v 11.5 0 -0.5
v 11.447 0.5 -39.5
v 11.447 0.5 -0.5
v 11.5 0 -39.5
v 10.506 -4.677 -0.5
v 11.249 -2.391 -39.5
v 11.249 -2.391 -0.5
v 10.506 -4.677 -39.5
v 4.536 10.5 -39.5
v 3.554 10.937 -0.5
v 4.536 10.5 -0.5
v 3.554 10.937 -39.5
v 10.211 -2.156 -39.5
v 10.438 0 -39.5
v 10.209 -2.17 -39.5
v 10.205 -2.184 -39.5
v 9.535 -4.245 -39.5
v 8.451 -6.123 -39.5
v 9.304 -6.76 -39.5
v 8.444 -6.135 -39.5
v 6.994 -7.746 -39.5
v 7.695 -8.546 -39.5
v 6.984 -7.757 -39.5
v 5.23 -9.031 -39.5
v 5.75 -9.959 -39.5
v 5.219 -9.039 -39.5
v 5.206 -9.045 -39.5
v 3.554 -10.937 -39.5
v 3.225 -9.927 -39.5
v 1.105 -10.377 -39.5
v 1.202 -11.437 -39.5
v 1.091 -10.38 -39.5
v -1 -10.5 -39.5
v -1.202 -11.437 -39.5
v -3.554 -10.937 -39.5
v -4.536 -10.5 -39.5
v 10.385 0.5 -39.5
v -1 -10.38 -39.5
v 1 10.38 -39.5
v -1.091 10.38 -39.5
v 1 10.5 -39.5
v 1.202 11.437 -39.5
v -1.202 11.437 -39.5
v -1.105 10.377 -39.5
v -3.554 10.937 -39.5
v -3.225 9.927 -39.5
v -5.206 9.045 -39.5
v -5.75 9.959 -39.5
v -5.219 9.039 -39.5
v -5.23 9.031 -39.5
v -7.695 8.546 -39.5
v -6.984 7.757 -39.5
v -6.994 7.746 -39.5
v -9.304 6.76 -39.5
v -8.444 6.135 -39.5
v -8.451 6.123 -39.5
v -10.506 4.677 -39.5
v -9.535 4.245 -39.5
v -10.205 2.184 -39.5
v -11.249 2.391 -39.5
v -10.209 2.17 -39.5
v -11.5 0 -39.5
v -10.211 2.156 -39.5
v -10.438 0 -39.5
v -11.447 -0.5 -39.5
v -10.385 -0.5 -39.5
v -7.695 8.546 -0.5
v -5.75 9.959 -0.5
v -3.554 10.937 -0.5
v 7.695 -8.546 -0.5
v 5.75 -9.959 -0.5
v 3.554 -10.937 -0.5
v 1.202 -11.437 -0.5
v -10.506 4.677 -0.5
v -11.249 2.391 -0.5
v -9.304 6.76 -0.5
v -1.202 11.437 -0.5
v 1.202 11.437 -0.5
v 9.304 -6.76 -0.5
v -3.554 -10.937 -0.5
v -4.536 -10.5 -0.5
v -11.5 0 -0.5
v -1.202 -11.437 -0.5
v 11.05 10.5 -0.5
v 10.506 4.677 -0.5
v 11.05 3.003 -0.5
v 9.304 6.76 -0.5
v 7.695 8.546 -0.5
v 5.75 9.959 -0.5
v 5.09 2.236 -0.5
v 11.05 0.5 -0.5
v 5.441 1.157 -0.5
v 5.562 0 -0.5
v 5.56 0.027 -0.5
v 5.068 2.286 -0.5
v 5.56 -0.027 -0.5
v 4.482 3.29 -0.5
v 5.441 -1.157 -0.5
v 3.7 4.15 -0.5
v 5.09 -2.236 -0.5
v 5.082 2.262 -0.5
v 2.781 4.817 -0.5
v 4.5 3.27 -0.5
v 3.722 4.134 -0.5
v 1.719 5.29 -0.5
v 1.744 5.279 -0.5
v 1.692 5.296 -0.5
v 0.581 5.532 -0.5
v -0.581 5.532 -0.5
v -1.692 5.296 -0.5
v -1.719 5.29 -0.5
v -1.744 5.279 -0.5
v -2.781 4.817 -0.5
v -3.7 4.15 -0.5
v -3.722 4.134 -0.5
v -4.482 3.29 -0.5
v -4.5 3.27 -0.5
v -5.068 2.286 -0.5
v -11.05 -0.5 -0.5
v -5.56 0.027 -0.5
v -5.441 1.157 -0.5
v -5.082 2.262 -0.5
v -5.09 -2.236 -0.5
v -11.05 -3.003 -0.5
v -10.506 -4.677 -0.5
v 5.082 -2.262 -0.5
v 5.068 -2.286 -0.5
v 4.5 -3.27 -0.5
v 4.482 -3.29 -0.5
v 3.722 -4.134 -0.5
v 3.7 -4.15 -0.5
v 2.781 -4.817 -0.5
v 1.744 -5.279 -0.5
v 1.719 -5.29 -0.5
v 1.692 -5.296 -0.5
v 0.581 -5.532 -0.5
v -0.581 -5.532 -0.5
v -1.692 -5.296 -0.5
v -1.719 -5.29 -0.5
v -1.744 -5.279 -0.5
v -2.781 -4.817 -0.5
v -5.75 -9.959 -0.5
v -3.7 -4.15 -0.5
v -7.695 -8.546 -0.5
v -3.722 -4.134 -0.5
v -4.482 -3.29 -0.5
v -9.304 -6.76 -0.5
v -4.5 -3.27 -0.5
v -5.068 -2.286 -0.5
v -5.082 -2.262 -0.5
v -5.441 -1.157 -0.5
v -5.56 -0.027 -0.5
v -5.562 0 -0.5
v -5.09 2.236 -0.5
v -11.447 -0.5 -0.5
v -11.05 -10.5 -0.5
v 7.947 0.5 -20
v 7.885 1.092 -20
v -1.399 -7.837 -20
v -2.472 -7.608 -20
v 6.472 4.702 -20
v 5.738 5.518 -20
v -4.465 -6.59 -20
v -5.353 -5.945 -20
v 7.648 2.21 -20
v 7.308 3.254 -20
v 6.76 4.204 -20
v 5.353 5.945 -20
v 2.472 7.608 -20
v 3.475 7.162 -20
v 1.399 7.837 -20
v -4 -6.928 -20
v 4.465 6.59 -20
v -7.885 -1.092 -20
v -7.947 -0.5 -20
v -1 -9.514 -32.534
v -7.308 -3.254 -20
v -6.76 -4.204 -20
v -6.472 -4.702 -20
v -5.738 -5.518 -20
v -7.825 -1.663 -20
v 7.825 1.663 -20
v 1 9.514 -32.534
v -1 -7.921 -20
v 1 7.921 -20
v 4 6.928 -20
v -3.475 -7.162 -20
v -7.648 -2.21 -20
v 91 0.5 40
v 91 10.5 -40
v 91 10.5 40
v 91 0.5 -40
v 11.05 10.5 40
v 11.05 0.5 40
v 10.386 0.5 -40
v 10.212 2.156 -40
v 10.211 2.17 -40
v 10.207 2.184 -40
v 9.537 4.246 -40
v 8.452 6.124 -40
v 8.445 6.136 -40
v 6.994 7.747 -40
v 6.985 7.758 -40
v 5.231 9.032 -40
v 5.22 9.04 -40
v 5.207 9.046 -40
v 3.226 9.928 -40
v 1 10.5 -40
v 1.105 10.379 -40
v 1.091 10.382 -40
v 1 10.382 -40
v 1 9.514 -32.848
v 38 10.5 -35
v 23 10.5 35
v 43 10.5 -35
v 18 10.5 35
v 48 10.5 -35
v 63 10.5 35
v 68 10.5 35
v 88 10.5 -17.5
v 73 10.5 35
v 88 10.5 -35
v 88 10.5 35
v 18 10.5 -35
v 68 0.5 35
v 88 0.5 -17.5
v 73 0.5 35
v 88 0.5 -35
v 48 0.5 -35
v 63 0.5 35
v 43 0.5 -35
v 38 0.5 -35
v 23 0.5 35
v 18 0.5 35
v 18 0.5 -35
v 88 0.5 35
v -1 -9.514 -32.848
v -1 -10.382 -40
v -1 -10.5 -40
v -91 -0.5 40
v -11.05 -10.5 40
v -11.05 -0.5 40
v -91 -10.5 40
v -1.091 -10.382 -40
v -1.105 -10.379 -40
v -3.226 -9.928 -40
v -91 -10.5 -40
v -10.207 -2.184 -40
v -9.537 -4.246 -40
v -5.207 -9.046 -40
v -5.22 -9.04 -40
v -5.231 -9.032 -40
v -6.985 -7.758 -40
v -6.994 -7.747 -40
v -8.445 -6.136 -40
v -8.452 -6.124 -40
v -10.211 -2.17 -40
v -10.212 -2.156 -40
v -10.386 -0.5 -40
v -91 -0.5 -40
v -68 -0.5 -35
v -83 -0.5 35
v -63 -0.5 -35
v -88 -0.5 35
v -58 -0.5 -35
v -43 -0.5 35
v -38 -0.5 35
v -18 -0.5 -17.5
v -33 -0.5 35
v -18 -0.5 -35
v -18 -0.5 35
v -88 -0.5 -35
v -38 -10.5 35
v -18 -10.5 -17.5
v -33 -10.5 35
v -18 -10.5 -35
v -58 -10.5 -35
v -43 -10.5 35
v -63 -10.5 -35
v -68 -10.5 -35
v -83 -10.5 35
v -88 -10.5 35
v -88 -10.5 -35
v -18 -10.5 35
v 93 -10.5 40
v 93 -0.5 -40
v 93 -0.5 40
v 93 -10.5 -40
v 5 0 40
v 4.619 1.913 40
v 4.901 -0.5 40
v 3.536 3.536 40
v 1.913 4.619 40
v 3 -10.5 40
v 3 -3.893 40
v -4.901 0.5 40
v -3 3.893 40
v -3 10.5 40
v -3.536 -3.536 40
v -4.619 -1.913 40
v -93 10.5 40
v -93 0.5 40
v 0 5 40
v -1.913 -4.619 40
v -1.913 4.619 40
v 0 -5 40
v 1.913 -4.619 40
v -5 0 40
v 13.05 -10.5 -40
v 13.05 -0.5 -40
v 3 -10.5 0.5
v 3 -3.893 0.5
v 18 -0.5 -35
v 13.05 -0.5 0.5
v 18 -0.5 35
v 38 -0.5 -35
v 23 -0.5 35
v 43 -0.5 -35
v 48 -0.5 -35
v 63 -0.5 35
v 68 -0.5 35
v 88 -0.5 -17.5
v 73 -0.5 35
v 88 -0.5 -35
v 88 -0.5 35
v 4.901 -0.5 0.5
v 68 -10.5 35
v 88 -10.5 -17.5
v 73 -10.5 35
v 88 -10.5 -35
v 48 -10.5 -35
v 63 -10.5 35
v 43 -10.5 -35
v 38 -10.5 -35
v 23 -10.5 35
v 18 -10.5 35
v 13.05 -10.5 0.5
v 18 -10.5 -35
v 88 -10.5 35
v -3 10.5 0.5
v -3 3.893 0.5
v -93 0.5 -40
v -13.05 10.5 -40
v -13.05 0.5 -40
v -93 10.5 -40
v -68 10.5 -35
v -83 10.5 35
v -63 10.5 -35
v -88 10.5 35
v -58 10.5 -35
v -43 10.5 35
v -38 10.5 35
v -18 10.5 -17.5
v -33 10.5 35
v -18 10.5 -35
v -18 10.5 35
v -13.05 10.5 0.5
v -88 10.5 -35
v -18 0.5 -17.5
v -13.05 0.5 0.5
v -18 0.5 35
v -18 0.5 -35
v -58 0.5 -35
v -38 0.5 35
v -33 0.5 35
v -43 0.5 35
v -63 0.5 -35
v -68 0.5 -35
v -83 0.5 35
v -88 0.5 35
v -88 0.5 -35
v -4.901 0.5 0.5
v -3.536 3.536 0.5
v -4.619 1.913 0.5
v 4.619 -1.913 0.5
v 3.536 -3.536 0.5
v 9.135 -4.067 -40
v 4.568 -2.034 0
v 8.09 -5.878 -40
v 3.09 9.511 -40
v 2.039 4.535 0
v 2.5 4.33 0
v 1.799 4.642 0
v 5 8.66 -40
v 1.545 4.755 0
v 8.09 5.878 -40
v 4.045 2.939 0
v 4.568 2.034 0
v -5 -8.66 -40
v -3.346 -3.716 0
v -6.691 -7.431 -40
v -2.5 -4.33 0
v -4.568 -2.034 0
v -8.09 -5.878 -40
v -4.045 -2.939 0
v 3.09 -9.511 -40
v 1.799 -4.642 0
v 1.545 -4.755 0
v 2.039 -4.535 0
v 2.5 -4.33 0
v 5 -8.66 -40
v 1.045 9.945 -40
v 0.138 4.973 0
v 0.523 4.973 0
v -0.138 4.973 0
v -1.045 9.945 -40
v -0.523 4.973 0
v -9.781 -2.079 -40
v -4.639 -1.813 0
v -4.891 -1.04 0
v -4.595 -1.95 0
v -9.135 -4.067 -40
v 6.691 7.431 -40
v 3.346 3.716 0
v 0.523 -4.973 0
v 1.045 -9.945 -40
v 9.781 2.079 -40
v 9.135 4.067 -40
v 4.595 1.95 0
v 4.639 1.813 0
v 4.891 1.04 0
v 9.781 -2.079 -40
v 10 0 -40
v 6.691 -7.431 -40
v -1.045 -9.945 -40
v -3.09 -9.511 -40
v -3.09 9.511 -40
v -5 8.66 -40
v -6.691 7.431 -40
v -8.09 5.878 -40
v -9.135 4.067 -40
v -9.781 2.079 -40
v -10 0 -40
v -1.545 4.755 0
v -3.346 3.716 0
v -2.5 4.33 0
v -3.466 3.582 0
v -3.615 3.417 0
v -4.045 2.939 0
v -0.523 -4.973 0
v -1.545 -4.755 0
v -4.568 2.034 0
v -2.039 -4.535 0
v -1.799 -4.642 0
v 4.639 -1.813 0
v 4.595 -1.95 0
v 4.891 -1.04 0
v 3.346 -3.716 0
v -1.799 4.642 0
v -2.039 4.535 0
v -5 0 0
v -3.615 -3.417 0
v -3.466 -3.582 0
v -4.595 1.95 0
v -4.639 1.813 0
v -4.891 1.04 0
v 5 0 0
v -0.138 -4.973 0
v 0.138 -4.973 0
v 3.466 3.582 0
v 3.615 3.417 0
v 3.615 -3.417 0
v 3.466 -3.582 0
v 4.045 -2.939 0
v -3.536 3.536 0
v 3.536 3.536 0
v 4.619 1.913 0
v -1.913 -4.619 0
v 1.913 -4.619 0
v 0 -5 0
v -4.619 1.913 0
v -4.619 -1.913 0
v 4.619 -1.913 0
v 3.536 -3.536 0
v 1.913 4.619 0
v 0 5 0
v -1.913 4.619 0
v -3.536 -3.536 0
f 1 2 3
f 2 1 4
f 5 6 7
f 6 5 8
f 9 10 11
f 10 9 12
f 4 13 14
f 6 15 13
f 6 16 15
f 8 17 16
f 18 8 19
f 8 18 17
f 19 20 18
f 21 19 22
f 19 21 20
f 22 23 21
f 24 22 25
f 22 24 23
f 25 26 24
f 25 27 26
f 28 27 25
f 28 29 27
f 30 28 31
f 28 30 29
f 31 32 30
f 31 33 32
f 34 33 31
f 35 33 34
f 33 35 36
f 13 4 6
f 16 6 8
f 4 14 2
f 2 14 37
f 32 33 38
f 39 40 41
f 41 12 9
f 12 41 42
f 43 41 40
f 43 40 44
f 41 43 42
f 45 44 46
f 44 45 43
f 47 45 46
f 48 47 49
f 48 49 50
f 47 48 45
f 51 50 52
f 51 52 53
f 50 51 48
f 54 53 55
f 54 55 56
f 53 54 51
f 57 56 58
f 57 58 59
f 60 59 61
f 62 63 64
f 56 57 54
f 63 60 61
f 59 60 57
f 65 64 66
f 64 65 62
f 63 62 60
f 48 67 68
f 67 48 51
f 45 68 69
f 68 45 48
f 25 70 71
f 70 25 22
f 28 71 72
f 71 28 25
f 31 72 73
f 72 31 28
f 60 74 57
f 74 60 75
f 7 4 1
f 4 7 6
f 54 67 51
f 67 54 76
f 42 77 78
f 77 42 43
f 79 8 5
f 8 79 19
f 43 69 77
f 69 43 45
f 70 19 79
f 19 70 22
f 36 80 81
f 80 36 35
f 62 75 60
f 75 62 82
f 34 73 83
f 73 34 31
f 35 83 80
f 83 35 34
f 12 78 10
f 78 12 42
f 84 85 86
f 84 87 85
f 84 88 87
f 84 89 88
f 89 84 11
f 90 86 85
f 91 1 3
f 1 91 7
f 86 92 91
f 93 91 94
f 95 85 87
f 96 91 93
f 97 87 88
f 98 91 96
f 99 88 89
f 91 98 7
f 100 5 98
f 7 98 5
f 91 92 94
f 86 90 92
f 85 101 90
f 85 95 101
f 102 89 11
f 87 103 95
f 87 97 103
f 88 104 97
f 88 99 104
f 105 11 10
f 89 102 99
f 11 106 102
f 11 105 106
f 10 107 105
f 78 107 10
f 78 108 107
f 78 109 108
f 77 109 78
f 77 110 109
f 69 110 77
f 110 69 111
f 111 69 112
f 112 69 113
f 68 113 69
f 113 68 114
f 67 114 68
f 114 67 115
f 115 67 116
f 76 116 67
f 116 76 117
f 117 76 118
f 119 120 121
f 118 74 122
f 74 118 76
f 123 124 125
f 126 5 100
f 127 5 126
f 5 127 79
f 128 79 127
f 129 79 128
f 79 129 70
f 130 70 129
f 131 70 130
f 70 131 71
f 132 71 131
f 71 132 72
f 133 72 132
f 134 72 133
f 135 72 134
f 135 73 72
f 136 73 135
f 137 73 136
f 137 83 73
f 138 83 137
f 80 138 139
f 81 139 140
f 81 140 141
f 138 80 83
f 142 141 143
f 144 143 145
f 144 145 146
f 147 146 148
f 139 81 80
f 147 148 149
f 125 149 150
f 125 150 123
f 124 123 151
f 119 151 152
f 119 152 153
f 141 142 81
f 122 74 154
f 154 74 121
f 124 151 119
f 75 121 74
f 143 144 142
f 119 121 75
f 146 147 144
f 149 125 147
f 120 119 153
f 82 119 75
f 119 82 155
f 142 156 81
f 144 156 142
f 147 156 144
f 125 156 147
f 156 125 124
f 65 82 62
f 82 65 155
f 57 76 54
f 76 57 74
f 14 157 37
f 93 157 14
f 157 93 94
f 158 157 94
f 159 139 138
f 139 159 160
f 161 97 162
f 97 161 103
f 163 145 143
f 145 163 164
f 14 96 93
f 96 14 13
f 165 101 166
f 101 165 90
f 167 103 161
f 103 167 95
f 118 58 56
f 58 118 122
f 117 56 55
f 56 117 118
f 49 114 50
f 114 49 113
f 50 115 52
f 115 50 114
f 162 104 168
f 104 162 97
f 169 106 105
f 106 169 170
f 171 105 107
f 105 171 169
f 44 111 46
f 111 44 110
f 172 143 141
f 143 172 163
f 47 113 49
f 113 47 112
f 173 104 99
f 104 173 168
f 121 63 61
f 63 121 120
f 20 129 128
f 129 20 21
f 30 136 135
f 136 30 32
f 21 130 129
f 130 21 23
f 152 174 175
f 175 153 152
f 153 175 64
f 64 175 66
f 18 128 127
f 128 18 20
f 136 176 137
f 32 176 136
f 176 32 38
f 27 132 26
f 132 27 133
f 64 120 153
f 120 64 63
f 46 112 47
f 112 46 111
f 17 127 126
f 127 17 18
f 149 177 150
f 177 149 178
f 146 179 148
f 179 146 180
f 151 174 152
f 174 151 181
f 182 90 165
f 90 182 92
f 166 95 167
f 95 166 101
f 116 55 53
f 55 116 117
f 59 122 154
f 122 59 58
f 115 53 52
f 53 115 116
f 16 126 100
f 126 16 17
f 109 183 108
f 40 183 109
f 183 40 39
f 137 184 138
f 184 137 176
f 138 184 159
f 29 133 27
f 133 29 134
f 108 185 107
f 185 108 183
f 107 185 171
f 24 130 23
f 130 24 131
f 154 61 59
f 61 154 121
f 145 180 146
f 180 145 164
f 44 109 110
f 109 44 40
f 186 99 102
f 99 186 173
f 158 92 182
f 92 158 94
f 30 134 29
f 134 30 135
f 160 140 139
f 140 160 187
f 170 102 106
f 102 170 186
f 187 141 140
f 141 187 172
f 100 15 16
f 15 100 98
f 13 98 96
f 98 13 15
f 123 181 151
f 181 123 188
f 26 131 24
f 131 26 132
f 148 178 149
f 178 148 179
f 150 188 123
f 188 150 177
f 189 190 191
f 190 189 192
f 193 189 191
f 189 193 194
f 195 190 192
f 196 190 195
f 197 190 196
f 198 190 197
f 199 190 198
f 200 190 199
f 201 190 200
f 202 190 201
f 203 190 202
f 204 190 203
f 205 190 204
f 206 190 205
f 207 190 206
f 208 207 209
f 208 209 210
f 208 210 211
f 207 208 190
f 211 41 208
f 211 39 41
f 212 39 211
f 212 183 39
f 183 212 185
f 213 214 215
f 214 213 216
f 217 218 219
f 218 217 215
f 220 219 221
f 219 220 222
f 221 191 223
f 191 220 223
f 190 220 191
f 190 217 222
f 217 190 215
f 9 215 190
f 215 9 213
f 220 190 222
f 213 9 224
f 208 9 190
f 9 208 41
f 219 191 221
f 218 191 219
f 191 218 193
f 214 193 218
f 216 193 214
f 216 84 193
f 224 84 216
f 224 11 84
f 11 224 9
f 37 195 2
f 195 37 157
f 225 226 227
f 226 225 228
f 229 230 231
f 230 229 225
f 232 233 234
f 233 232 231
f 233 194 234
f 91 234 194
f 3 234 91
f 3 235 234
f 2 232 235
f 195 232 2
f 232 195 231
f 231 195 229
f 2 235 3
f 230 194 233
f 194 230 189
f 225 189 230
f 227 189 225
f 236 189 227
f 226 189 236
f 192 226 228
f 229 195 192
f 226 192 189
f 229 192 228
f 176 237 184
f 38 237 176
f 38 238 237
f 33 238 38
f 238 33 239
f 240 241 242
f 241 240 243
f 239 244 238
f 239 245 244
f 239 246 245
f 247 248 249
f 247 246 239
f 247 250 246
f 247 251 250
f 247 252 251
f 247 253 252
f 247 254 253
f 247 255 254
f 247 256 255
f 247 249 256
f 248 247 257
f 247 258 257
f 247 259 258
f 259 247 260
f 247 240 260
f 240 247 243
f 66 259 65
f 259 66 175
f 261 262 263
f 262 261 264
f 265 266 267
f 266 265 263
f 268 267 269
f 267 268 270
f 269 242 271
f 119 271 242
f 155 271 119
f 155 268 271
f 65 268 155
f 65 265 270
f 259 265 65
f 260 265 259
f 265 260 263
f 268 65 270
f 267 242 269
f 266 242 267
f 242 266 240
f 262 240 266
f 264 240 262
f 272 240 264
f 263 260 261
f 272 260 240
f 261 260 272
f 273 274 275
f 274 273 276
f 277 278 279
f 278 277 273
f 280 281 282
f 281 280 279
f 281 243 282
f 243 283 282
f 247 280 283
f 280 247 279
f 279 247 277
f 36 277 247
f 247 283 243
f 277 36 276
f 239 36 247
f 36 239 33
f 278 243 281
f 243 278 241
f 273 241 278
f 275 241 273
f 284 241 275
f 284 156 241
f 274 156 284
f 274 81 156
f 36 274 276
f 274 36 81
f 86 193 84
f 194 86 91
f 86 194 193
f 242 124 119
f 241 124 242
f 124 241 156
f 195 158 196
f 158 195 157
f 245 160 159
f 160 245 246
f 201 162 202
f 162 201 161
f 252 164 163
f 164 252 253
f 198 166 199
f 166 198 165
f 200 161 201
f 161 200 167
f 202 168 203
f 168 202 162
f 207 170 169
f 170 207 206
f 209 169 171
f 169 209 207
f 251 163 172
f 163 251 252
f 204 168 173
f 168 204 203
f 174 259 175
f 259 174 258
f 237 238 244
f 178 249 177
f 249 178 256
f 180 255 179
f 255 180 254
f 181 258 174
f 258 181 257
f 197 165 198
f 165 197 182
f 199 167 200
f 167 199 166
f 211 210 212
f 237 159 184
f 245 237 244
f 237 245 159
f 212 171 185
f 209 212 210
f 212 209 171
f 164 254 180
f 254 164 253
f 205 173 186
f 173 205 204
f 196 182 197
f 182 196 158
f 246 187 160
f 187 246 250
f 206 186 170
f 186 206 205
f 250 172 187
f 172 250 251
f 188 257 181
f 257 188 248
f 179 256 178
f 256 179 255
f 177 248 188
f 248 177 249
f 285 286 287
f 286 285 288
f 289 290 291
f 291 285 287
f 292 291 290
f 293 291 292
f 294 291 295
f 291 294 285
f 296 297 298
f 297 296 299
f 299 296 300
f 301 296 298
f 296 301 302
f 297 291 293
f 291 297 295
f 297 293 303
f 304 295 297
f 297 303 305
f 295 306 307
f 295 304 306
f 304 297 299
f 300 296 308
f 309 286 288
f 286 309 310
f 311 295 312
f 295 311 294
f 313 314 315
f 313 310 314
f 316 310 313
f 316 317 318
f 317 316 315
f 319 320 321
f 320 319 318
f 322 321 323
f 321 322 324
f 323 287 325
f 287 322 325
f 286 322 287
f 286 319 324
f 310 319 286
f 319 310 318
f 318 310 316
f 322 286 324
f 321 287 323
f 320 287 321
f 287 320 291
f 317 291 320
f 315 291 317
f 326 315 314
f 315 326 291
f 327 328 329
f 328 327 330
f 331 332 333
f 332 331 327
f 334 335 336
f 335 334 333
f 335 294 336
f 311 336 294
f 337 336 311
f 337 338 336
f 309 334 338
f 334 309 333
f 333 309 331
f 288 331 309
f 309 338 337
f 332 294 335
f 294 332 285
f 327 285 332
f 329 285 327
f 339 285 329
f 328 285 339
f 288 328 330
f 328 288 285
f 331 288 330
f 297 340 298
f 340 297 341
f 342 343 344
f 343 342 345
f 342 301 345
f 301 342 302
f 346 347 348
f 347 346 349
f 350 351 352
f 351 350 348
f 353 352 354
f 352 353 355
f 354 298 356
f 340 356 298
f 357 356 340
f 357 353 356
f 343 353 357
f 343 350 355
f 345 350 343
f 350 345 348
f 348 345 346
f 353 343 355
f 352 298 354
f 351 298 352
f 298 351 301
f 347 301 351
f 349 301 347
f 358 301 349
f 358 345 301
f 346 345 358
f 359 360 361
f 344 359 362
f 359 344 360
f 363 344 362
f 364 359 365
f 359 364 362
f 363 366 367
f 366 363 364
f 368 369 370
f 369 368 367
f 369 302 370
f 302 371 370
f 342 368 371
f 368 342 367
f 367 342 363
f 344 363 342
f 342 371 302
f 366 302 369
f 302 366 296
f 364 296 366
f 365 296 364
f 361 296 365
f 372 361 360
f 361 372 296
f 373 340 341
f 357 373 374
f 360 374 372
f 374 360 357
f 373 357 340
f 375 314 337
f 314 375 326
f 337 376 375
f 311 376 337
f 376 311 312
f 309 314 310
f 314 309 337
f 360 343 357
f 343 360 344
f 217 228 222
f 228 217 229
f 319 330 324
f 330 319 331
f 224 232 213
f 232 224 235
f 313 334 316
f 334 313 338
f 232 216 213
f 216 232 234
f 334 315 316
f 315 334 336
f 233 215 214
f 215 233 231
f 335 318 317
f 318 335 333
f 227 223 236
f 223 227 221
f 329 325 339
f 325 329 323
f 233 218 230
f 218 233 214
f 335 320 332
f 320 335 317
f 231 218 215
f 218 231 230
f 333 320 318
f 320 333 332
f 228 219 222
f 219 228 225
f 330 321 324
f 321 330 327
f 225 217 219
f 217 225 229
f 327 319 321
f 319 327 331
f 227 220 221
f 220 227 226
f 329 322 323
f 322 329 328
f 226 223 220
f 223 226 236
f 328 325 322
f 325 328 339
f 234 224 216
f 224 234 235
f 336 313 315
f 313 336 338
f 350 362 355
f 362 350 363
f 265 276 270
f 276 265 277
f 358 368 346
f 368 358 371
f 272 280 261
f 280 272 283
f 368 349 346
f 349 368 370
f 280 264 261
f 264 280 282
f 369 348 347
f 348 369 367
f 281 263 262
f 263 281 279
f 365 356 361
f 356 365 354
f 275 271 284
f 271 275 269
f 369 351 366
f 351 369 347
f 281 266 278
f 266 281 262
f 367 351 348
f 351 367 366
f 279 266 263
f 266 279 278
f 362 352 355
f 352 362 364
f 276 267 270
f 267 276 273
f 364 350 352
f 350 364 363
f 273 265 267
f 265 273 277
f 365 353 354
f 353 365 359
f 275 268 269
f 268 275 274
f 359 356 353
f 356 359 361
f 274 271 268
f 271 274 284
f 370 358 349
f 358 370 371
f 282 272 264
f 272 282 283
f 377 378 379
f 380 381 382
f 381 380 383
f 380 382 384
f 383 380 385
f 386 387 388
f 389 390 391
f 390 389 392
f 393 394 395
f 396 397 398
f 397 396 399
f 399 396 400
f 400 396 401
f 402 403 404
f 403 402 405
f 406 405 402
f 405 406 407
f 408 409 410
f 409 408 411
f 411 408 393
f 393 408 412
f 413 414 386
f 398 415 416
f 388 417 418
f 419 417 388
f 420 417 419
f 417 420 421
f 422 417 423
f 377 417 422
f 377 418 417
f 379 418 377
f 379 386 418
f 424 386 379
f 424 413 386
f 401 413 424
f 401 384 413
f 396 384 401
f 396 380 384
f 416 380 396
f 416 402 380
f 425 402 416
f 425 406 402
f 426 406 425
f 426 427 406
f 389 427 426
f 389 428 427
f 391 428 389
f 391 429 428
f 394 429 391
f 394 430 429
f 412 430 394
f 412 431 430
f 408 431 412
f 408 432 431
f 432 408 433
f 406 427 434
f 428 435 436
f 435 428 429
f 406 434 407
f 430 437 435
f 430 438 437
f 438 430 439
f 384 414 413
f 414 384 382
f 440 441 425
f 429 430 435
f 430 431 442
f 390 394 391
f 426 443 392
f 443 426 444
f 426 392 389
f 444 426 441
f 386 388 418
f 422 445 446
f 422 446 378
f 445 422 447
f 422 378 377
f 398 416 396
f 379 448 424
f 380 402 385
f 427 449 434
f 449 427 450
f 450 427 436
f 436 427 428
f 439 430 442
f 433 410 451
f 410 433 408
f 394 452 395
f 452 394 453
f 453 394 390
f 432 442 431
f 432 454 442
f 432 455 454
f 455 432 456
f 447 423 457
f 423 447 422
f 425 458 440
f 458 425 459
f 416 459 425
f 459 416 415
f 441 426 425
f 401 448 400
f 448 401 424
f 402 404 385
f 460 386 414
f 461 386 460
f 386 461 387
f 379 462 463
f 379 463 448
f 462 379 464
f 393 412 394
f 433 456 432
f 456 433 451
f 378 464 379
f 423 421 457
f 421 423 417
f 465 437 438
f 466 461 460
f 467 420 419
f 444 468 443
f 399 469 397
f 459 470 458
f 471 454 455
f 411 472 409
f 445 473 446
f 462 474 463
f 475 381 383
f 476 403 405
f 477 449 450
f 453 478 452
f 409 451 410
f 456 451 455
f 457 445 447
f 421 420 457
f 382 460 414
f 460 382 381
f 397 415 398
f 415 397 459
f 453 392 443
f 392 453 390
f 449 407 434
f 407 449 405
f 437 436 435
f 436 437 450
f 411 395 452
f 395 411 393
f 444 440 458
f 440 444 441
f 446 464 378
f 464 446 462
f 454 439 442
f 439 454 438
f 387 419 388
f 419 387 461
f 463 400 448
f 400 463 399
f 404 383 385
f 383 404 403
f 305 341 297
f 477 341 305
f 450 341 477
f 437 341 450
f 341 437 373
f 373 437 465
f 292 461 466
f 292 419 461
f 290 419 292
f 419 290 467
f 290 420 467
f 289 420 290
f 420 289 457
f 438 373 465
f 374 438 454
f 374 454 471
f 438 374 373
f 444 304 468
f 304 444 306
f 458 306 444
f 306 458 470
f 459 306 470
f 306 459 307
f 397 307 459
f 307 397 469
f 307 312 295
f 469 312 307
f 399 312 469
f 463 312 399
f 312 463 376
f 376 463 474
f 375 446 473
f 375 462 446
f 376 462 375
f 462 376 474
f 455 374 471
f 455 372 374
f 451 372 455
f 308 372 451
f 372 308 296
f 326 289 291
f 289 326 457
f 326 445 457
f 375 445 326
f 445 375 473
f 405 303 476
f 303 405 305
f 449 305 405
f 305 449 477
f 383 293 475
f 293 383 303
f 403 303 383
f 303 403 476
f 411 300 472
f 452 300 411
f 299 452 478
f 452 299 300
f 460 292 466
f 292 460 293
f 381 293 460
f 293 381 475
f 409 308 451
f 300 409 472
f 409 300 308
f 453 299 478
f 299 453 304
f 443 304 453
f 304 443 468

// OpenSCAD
translate([0,0,-20])
cylinder(h=40, d1=20,d2=10,center=true);
translate([0,0,20])
cylinder(h=40, d=10,center=true);

translate([0,0,-20]){
    difference(){
        cylinder(h=39, d=23,center=true);
        cylinder(h=40, d1=21,d2=11,center=true);
    }
}

module triangle(base_width, height, length) {
    x_left = base_width/2;
    x_right = -base_width/2;
    y_top = height/2;
    y_bottom = -height/2;
    rotate([90,0,0])
    translate([0,0,-length/2])
    linear_extrude(height = length)
        polygon(points=[[x_left,y_bottom],[x_right,y_bottom],[0,y_top]]);
}

module triangle_pattern(base_width, height, length, spacing, repetitions) {
    for (i = [0:repetitions-1]) {
        translate([(base_width + spacing) * i, 0, 0]) {
            triangle(base_width, height, length);
        }
        translate([(base_width + spacing) * (i + 0.5), 0, 0]) {
            rotate([0, 180, 0]) {
                triangle(base_width, height, length);
            }
        }
    }
}

module walls(){
    difference(){
        color("lightblue"){
            translate([46,5.5,0])
            cube([90,10,80],center=true);
            translate([-46,-5.5,0])
            cube([90,10,80],center=true);
        }
        translate([0,0,20])
        cylinder(h=41, d=15,center=true);
        translate([6,5.5,20])
        cube([10.1,10.5,41],center=true);
        translate([-6,-5.5,20])
        cube([10.1,10.5,41],center=true);
        translate([0,0,-20])
        cylinder(h=41, d1=21,d2=11,center=true);
    }

    difference(){
        color("lightgreen"){
            translate([48,-5.5,0])
            cube([90,10,80],center=true);
            translate([-48,5.5,0])
            cube([90,10,80],center=true);
        }
        translate([0,0,-20])
        cylinder(h=41, d=25,center=true);
        translate([8,-5.5,-20])
        cube([10.1,10.5,41],center=true);
        translate([-8,5.5,-20])
        cube([10.1,10.5,41],center=true);
    }
}

difference(){
    walls();
    translate([53,0,0])
    intersection(){
        translate([-35,0,0])
        triangle_pattern(40, 70, 30, 10, 3);
        cube([70,30,70],center=true);
    }
    translate([-53,0,0])
    intersection(){
        translate([-35,0,0])
        triangle_pattern(40, 70, 30, 10, 3);
        cube([70,30,70],center=true);
    }
}
